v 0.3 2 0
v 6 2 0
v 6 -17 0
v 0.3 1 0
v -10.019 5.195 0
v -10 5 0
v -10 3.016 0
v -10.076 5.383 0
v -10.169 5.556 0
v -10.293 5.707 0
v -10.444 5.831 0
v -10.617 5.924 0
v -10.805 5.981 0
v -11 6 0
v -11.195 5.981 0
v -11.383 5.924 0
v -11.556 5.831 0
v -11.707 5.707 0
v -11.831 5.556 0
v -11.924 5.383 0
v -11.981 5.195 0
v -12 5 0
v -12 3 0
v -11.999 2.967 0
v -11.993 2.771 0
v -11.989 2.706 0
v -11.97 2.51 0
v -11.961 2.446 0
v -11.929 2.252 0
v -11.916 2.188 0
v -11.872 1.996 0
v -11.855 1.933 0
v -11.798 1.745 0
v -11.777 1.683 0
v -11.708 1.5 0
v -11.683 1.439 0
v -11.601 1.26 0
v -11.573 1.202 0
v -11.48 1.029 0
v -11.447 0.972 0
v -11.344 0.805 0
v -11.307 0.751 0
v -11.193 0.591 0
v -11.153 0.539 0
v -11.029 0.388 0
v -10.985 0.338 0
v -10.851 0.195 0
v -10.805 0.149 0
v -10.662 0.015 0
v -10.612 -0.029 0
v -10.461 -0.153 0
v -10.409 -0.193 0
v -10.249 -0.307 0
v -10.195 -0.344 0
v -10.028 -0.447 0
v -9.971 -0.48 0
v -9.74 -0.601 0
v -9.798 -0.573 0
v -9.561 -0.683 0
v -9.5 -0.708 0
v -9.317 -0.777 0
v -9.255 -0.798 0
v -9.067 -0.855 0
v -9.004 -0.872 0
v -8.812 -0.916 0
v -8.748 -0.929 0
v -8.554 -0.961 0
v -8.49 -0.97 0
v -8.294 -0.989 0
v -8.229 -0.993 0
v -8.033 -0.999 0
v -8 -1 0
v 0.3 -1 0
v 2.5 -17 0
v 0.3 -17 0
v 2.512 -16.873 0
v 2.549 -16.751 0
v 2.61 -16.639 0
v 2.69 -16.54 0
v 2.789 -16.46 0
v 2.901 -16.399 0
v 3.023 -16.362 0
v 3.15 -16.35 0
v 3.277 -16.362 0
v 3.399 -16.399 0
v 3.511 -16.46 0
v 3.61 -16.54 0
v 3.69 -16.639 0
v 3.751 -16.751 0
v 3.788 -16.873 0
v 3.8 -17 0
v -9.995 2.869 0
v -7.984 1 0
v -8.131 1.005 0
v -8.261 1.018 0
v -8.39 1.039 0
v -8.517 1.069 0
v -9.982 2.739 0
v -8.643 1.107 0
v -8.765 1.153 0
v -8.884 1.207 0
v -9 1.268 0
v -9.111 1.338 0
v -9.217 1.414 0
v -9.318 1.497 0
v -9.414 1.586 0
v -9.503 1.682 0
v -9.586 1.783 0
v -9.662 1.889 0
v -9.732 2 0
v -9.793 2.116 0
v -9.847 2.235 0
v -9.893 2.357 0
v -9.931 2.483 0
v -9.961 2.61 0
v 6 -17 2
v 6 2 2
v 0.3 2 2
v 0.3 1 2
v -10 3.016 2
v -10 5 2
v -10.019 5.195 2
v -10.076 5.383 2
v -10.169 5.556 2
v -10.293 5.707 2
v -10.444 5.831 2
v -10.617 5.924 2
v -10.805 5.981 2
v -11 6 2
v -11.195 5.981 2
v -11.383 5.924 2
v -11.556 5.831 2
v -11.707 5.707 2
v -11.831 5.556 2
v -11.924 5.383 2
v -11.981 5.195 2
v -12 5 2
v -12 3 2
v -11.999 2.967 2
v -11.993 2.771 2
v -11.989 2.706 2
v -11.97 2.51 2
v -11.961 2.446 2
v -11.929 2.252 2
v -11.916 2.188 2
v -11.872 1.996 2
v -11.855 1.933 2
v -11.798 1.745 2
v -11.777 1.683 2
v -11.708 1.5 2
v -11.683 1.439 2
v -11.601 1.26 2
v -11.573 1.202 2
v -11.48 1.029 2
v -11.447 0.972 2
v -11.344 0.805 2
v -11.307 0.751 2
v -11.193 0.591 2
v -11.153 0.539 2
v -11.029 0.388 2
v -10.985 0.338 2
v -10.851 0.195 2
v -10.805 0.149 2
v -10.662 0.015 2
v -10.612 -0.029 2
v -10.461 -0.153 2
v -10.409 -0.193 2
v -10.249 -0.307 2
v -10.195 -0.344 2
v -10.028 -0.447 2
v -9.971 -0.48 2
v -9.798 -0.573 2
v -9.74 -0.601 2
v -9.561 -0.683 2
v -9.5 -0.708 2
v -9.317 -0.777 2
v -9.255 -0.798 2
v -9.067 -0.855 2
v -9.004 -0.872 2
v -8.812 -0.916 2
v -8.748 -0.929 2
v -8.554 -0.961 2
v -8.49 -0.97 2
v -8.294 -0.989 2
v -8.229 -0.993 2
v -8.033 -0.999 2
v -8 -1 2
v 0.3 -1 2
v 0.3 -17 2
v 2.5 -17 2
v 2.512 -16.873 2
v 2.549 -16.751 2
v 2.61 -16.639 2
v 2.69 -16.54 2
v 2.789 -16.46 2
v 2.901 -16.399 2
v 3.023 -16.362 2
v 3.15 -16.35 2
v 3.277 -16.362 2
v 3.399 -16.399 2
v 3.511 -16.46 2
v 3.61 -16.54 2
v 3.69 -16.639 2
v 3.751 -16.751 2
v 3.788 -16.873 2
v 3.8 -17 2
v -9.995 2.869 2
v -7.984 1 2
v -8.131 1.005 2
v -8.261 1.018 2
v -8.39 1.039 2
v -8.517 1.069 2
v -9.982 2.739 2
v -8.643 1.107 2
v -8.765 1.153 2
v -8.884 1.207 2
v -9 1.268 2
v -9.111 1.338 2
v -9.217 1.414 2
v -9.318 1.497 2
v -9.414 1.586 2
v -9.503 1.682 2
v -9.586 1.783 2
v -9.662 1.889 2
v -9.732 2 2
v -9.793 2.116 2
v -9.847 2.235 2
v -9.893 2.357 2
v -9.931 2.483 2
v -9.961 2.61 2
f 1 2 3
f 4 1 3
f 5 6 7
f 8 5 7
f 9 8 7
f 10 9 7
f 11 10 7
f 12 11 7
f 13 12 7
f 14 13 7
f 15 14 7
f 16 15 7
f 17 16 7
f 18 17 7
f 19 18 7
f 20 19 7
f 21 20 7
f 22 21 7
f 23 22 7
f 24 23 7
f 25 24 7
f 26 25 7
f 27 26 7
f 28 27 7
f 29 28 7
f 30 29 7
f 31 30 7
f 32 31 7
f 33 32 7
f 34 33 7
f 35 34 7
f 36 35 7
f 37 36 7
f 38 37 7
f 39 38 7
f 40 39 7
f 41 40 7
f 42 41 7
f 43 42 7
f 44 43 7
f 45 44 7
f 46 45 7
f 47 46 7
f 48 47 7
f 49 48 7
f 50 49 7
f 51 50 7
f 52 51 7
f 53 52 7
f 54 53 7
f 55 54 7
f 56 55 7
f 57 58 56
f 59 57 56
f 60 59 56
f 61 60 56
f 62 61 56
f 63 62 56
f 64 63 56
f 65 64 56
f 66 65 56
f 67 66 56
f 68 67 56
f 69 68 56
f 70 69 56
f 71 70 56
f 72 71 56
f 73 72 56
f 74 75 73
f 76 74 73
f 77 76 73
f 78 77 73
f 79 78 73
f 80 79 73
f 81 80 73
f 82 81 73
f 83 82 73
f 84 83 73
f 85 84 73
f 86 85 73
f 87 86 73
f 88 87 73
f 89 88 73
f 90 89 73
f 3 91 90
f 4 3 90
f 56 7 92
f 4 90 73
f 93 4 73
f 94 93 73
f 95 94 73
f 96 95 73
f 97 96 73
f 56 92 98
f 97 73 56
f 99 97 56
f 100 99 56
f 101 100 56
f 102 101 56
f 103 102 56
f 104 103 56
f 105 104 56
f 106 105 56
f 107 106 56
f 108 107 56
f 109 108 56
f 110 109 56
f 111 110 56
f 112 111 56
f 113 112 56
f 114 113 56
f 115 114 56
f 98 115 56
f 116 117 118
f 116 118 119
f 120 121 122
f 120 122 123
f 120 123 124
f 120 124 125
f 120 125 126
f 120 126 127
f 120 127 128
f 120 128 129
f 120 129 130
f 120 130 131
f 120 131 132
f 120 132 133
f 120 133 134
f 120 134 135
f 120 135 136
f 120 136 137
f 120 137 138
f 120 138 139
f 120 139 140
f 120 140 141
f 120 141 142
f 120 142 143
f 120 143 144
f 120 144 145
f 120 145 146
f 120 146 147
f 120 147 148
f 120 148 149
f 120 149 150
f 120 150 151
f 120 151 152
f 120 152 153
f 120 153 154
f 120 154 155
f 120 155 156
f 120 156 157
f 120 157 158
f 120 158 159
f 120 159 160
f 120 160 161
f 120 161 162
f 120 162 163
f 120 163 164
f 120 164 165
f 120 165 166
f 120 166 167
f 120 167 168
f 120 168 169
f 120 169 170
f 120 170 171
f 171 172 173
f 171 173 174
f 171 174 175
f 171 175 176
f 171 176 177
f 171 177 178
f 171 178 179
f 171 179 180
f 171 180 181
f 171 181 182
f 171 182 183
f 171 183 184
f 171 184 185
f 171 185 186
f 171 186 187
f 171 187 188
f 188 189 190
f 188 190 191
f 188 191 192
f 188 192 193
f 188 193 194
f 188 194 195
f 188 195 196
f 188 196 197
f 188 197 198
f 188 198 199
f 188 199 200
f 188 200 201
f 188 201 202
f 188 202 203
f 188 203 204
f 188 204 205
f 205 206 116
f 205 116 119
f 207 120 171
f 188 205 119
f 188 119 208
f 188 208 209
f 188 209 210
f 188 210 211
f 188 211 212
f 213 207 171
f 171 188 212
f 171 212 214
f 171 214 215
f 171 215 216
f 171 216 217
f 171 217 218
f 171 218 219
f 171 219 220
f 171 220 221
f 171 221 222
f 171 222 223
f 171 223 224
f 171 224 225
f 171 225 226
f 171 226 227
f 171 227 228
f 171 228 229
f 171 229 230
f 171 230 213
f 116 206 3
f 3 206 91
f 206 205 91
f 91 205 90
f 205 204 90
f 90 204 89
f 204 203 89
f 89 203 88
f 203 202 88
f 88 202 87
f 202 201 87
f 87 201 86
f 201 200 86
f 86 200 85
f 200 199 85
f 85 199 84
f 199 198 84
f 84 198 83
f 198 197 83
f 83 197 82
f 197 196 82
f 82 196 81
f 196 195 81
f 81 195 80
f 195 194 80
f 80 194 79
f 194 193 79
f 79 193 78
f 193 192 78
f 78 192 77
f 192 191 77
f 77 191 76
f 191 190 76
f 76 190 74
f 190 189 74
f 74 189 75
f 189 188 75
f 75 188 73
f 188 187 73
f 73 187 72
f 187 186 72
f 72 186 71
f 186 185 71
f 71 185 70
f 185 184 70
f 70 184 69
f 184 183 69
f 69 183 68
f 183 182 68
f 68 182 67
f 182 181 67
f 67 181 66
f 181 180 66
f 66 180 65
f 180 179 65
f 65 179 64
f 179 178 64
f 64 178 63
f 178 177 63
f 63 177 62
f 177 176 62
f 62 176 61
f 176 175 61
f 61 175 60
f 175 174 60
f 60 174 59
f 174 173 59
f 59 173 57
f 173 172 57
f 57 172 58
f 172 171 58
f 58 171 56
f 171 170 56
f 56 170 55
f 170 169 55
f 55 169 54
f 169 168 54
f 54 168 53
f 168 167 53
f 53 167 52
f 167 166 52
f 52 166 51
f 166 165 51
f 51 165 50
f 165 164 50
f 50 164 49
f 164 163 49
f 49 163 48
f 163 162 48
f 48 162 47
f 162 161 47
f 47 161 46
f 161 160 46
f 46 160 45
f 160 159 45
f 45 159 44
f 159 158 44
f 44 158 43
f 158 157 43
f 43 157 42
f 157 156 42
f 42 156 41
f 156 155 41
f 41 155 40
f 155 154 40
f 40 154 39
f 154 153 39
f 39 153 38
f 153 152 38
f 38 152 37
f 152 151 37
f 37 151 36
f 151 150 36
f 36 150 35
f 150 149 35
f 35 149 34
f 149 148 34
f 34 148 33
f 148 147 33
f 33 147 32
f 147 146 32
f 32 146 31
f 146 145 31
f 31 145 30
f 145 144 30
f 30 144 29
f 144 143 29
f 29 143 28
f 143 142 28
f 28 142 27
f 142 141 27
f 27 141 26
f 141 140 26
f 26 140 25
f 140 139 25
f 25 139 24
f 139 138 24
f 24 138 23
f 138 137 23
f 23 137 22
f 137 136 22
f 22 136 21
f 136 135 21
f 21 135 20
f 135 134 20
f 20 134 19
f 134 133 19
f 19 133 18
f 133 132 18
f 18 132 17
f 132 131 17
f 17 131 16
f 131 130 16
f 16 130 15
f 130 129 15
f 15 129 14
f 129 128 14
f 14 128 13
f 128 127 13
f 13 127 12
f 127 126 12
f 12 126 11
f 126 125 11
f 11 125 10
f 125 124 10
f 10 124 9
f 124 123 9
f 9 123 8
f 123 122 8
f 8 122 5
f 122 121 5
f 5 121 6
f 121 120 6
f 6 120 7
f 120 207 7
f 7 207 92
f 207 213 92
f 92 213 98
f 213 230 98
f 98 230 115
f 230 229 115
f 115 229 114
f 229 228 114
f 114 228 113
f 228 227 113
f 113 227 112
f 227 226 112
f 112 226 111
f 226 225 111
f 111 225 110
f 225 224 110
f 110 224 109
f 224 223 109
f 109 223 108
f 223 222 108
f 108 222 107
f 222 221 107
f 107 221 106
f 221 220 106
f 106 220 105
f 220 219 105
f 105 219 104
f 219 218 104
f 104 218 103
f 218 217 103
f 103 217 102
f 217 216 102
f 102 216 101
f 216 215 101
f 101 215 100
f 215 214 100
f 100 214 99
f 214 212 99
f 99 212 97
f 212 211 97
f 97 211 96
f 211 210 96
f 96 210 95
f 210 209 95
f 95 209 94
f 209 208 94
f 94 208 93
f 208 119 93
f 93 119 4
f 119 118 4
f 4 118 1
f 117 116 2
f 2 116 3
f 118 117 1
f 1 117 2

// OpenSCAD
// Unloaded fit test; side-down print. Original coordinates, mm.
linear_extrude(height=2.0) polygon(points=[[6.0, 2.0], [6.0, -17.0], [3.8, -17.0], [3.7875104322620996, -16.873191290689515], [3.750521696132336, -16.75125576896269], [3.6904552479966544, -16.63887934853726], [3.609619407771256, -16.540380592228743], [3.511120651462741, -16.459544752003346], [3.3987442310373086, -16.399478303867664], [3.276808709310483, -16.3624895677379], [3.15, -16.35], [3.023191290689516, -16.3624895677379], [2.901255768962691, -16.399478303867664], [2.7888793485372583, -16.459544752003346], [2.690380592228744, -16.540380592228743], [2.6095447520033455, -16.63887934853726], [2.549478303867663, -16.751255768962693], [2.5124895677379, -16.873191290689515], [2.5, -17.0], [0.3, -17.0], [0.3, -1.0], [-8.0, -1.0], [-8.032719082821778, -0.9994645874763656], [-8.228928470512207, -0.9930413571921758], [-8.294226528019989, -0.9887614963880073], [-8.489595716989715, -0.9695193107936281], [-8.554474050054743, -0.9609779162063099], [-8.748166439442972, -0.9289991732945702], [-8.812347229082754, -0.9162328204870256], [-9.003533398341933, -0.8716544581445393], [-9.066741812562027, -0.8547178145994135], [-9.254603073163949, -0.7977307242175254], [-9.316568443830722, -0.7766963152426417], [-9.500300345016505, -0.7075445242911848], [-9.560757326899658, -0.6825024224550379], [-9.739573100461394, -0.6014820495192431], [-9.798262807483004, -0.572539488946419], [-9.971396736826, -0.47999747570166984], [-10.028067850650366, -0.44727839287989557], [-10.194778549709174, -0.34361101843421515], [-10.249188395926609, -0.30725552149925084], [-10.408761983893964, -0.19290670546532096], [-10.460677571189809, -0.1530704742364416], [-10.612430729463853, -0.02852987579966848], [-10.661629747323078, 0.014616504865232471], [-10.804912645582514, 0.14881558374252224], [-10.851184416257473, 0.1950873544174816], [-10.985383495134764, 0.33837025267691745], [-11.02852987579967, 0.38756927053614754], [-11.153070474236443, 0.5393224288101925], [-11.192906705465326, 0.5912380161060419], [-11.307255521499254, 0.7508116040733966], [-11.343611018434212, 0.805221450290821], [-11.447278392879893, 0.9719321493496278], [-11.479997475701671, 1.028603263174001], [-11.57253948894642, 1.201737192516997], [-11.601482049519243, 1.2604268995386039], [-11.682502422455038, 1.4392426731003387], [-11.707544524291185, 1.4996996549834956], [-11.776696315242642, 1.6834315561692796], [-11.797730724217525, 1.745396926836051], [-11.854717814599413, 1.933258187437973], [-11.871654458144539, 1.9964666016580659], [-11.916232820487025, 2.187652770917244], [-11.92899917329457, 2.251833560557027], [-11.96097791620631, 2.4455259499452566], [-11.969519310793627, 2.510404283010285], [-11.988761496388006, 2.7057734719800104], [-11.993041357192176, 2.771071529487793], [-11.999464587476366, 2.9672809171782224], [-12.0, 3.0], [-12.0, 5.0], [-11.98078528040323, 5.195090322016129], [-11.923879532511286, 5.38268343236509], [-11.831469612302545, 5.555570233019602], [-11.707106781186548, 5.707106781186548], [-11.555570233019601, 5.831469612302545], [-11.38268343236509, 5.923879532511287], [-11.195090322016128, 5.98078528040323], [-11.0, 6.0], [-10.804909677983872, 5.98078528040323], [-10.61731656763491, 5.923879532511287], [-10.444429766980399, 5.831469612302545], [-10.292893218813452, 5.707106781186548], [-10.168530387697455, 5.555570233019602], [-10.076120467488714, 5.38268343236509], [-10.01921471959677, 5.195090322016129], [-10.0, 5.0], [-10.0, 3.016363922135322], [-9.99518329410685, 2.869228777953108], [-9.982358606385999, 2.73901753835543], [-9.961045154775364, 2.609923865725208], [-9.931334206746861, 2.482500558987572], [-9.893352989141247, 2.357293264304313], [-9.847264143363285, 2.2348381385334157], [-9.79326502892629, 2.115659553323104], [-9.73158687832838, 2.0002678496718884], [-9.662493806879407, 1.889157152570035], [-9.586281681718697, 1.782803255080591], [-9.503276854866465, 1.6816615809203268], [-9.41383476573444, 1.5861652342655663], [-9.318338419079671, 1.4967231451335345], [-9.217196744919406, 1.4137183182813007], [-9.110842847429955, 1.3375061931205852], [-8.999732150328118, 1.2684131216716212], [-8.884340446676894, 1.2067349710737088], [-8.765161861466595, 1.1527358566367194], [-8.642706735695699, 1.106647010858757], [-8.51749944101242, 1.0686657932531376], [-8.390076134274777, 1.0389548452246322], [-8.260982461644593, 1.0176413936140043], [-8.13077122204687, 1.0048167058931488], [-7.983636077864688, 1.0], [0.3, 1.0], [0.3, 2.0], [6.0, 2.0]]);
